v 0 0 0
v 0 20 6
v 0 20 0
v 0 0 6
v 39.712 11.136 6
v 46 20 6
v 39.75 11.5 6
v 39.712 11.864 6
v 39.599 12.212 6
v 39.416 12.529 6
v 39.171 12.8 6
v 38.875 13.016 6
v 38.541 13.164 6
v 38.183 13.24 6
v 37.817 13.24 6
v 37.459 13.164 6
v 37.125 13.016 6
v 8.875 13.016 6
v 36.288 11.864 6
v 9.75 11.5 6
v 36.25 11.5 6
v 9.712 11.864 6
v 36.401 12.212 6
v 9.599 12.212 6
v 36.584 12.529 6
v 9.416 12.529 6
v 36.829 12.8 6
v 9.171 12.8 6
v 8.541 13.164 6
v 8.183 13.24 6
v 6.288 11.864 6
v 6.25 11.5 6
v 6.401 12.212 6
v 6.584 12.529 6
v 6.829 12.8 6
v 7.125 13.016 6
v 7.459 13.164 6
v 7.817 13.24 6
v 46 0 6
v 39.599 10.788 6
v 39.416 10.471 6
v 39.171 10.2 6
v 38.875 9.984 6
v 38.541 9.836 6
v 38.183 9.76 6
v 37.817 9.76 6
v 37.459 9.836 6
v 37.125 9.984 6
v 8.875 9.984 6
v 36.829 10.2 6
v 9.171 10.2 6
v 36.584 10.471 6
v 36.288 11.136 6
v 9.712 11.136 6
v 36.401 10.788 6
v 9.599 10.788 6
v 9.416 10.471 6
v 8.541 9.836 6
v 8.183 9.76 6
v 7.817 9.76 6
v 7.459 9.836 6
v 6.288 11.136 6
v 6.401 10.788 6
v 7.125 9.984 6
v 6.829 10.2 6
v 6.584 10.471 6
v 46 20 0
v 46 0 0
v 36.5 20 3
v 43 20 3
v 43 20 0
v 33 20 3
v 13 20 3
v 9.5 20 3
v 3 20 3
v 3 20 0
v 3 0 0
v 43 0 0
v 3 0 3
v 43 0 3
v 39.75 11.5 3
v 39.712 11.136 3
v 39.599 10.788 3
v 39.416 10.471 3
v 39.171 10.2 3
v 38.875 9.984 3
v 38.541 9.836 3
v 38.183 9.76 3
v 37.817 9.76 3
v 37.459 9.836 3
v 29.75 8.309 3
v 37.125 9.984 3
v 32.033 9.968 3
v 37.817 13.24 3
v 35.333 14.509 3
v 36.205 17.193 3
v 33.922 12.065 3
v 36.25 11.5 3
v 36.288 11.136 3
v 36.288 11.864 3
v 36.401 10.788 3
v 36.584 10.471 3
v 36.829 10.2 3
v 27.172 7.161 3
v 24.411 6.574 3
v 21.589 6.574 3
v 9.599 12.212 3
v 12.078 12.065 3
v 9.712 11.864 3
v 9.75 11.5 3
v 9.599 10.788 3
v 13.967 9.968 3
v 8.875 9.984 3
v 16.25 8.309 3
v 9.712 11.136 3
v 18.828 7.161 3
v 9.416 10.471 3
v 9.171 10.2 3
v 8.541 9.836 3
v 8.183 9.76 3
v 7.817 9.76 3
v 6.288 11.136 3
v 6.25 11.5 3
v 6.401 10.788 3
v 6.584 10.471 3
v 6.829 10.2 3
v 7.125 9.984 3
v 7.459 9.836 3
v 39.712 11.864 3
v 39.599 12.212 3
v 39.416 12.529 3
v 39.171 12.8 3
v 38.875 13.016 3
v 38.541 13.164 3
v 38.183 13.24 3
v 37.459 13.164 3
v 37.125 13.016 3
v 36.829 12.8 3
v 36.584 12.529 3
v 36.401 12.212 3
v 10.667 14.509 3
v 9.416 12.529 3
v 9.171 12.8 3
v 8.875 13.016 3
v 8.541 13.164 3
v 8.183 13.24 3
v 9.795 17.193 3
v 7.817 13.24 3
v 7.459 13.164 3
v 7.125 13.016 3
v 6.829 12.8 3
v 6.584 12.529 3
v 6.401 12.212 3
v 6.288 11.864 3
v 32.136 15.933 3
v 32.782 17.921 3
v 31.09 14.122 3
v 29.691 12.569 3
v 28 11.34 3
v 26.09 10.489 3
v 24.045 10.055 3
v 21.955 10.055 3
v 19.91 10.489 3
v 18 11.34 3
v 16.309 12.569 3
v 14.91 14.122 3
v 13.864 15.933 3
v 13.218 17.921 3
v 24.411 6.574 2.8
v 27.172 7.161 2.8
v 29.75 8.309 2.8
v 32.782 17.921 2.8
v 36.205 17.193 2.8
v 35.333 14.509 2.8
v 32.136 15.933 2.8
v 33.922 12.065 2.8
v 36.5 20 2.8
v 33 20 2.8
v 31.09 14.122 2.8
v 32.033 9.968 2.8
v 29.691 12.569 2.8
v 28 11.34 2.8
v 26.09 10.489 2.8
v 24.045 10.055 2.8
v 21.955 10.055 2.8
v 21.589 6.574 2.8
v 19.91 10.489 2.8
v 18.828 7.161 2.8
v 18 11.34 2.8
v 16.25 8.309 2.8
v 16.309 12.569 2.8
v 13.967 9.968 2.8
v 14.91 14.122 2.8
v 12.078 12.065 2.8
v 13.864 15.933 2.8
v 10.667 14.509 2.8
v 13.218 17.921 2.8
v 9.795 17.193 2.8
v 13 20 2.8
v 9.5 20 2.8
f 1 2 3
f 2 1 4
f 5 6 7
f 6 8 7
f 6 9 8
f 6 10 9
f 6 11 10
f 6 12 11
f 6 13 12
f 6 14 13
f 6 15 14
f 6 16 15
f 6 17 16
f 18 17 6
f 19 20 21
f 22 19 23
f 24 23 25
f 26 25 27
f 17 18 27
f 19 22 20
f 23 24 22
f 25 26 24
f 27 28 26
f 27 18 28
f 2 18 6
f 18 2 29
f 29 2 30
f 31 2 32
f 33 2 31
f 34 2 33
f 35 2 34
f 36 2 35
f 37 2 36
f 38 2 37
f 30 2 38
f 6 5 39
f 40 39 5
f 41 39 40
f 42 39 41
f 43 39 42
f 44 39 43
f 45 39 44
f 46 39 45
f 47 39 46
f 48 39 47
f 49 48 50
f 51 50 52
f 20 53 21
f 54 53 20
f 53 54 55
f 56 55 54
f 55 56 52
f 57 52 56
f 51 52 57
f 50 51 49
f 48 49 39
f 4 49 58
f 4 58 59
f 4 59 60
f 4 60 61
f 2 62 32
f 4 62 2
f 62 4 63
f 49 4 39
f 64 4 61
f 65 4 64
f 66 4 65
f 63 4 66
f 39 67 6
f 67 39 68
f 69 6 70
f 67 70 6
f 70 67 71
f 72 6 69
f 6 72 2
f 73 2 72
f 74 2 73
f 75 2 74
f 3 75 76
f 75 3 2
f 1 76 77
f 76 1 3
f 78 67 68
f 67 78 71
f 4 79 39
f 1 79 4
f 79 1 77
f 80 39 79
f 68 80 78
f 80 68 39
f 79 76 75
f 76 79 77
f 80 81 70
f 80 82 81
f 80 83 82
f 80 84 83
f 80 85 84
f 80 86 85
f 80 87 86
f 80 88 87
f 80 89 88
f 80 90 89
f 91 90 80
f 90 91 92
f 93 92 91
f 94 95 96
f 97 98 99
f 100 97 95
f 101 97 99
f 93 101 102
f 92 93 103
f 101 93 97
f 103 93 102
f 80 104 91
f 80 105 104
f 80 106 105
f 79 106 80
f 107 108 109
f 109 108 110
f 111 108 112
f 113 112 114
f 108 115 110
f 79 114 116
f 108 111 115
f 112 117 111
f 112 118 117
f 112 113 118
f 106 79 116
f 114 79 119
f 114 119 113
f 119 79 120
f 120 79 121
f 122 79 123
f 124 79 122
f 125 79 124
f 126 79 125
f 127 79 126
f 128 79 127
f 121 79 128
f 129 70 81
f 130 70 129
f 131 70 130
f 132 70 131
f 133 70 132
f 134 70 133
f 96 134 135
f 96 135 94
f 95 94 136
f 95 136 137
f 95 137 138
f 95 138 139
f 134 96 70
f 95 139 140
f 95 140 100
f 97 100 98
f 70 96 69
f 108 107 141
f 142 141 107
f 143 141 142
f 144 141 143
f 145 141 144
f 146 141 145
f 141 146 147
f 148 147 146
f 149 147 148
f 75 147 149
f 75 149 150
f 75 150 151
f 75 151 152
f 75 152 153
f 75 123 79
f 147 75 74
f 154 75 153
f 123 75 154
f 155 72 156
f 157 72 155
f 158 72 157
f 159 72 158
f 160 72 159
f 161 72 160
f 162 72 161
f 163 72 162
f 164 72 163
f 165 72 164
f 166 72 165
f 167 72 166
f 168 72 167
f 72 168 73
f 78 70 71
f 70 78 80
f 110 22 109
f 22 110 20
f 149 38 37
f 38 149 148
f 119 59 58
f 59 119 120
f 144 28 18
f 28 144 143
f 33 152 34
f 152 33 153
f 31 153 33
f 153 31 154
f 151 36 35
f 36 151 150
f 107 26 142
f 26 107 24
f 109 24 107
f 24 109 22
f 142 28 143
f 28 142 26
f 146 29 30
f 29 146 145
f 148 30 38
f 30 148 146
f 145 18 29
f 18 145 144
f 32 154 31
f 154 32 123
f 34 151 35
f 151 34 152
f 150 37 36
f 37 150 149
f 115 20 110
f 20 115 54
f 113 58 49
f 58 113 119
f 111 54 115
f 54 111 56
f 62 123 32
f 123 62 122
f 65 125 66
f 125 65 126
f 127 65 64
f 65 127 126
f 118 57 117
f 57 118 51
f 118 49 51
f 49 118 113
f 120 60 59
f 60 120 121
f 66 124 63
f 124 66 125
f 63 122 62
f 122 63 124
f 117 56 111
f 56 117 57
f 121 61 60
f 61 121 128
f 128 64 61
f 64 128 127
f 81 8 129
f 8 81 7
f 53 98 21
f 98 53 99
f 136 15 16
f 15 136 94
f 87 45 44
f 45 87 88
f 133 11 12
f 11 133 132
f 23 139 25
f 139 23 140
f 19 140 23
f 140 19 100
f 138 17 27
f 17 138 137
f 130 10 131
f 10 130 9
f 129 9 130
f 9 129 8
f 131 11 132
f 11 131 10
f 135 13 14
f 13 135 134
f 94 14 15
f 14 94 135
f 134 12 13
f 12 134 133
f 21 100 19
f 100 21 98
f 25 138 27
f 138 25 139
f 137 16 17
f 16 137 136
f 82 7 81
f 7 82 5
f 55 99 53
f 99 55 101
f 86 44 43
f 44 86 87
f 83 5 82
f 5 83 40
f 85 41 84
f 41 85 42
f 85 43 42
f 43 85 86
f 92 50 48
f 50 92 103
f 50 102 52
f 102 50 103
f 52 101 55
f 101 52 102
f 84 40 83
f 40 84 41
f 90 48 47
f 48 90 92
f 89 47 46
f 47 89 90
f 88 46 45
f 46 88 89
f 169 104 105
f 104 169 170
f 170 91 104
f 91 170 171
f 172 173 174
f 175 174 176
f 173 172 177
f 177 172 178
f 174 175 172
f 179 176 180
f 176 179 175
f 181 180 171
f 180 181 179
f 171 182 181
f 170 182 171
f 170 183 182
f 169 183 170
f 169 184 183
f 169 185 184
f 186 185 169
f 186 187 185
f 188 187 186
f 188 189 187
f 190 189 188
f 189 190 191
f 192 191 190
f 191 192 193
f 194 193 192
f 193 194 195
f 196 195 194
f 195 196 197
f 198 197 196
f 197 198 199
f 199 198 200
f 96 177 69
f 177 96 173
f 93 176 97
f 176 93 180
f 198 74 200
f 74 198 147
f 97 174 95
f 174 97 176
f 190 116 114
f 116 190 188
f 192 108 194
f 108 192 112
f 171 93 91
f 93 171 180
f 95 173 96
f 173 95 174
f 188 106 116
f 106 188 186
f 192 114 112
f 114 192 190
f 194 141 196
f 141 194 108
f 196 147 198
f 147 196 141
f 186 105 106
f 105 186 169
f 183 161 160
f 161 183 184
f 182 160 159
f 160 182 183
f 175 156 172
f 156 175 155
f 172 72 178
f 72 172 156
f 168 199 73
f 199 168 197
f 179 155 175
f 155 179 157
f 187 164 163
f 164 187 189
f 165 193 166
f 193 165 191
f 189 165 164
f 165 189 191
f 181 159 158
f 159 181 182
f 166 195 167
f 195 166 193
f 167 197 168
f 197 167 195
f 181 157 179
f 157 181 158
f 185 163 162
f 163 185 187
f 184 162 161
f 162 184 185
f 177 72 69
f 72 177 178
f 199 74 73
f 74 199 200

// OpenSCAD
// file: osat_cad_param.scad
x_length = 90;
y_length = 90;
z_length = 30;

wall_thickness = 3;

battery_x_length = 53;
battery_y_length = 17;


glass_mount_hole_diameter = 5.5;
glass_mount_hole_x_dist   = 15;
glass_mount_hole_y_dist   = 20;

piezo_mount_width = 40;
piezo_mount_height = 10;
piezo_y_dist      = 20;
piezo_solder_fix_hole_diameter = 2.5;
piezo_solder_fix_hole_diameter_2 = 3.5;

piezo_height_step    = 0.2;
piezo_diameter       = 27;
piezo_diameter_inner = 20;


//param solder mount
x_lenth_solder_mount = 12;


//param piezo_fix
y_length_piezo_fix = 20;


$fs = 0.01;
// main file
include<osat_cad_param.scad>

union()
{
  difference()
  {
    cube([piezo_mount_width + wall_thickness*2, y_length_piezo_fix, wall_thickness * 2], center = false);
    translate([wall_thickness, 0, 0]) cube([piezo_mount_width, y_length_piezo_fix, wall_thickness], center = false);
    #translate([wall_thickness + 5,  piezo_y_dist - 8.5, -5]) cylinder(d=3.5, h=100, center=false);
    #translate([wall_thickness + 35, piezo_y_dist - 8.5, -5]) cylinder(d=3.5, h=100, center=false);
  }
  difference()
  {
    translate([wall_thickness + piezo_mount_width/2, piezo_y_dist, wall_thickness - piezo_height_step]) cylinder(d=piezo_diameter, h=piezo_height_step, center=false);
    translate([wall_thickness + piezo_mount_width/2, piezo_y_dist, wall_thickness - piezo_height_step]) cylinder(d=piezo_diameter_inner, h=piezo_height_step, center=false);
    translate([0, y_length_piezo_fix, 0]) cube([piezo_mount_width, piezo_mount_width, 4*wall_thickness], center = false);
  }
}
